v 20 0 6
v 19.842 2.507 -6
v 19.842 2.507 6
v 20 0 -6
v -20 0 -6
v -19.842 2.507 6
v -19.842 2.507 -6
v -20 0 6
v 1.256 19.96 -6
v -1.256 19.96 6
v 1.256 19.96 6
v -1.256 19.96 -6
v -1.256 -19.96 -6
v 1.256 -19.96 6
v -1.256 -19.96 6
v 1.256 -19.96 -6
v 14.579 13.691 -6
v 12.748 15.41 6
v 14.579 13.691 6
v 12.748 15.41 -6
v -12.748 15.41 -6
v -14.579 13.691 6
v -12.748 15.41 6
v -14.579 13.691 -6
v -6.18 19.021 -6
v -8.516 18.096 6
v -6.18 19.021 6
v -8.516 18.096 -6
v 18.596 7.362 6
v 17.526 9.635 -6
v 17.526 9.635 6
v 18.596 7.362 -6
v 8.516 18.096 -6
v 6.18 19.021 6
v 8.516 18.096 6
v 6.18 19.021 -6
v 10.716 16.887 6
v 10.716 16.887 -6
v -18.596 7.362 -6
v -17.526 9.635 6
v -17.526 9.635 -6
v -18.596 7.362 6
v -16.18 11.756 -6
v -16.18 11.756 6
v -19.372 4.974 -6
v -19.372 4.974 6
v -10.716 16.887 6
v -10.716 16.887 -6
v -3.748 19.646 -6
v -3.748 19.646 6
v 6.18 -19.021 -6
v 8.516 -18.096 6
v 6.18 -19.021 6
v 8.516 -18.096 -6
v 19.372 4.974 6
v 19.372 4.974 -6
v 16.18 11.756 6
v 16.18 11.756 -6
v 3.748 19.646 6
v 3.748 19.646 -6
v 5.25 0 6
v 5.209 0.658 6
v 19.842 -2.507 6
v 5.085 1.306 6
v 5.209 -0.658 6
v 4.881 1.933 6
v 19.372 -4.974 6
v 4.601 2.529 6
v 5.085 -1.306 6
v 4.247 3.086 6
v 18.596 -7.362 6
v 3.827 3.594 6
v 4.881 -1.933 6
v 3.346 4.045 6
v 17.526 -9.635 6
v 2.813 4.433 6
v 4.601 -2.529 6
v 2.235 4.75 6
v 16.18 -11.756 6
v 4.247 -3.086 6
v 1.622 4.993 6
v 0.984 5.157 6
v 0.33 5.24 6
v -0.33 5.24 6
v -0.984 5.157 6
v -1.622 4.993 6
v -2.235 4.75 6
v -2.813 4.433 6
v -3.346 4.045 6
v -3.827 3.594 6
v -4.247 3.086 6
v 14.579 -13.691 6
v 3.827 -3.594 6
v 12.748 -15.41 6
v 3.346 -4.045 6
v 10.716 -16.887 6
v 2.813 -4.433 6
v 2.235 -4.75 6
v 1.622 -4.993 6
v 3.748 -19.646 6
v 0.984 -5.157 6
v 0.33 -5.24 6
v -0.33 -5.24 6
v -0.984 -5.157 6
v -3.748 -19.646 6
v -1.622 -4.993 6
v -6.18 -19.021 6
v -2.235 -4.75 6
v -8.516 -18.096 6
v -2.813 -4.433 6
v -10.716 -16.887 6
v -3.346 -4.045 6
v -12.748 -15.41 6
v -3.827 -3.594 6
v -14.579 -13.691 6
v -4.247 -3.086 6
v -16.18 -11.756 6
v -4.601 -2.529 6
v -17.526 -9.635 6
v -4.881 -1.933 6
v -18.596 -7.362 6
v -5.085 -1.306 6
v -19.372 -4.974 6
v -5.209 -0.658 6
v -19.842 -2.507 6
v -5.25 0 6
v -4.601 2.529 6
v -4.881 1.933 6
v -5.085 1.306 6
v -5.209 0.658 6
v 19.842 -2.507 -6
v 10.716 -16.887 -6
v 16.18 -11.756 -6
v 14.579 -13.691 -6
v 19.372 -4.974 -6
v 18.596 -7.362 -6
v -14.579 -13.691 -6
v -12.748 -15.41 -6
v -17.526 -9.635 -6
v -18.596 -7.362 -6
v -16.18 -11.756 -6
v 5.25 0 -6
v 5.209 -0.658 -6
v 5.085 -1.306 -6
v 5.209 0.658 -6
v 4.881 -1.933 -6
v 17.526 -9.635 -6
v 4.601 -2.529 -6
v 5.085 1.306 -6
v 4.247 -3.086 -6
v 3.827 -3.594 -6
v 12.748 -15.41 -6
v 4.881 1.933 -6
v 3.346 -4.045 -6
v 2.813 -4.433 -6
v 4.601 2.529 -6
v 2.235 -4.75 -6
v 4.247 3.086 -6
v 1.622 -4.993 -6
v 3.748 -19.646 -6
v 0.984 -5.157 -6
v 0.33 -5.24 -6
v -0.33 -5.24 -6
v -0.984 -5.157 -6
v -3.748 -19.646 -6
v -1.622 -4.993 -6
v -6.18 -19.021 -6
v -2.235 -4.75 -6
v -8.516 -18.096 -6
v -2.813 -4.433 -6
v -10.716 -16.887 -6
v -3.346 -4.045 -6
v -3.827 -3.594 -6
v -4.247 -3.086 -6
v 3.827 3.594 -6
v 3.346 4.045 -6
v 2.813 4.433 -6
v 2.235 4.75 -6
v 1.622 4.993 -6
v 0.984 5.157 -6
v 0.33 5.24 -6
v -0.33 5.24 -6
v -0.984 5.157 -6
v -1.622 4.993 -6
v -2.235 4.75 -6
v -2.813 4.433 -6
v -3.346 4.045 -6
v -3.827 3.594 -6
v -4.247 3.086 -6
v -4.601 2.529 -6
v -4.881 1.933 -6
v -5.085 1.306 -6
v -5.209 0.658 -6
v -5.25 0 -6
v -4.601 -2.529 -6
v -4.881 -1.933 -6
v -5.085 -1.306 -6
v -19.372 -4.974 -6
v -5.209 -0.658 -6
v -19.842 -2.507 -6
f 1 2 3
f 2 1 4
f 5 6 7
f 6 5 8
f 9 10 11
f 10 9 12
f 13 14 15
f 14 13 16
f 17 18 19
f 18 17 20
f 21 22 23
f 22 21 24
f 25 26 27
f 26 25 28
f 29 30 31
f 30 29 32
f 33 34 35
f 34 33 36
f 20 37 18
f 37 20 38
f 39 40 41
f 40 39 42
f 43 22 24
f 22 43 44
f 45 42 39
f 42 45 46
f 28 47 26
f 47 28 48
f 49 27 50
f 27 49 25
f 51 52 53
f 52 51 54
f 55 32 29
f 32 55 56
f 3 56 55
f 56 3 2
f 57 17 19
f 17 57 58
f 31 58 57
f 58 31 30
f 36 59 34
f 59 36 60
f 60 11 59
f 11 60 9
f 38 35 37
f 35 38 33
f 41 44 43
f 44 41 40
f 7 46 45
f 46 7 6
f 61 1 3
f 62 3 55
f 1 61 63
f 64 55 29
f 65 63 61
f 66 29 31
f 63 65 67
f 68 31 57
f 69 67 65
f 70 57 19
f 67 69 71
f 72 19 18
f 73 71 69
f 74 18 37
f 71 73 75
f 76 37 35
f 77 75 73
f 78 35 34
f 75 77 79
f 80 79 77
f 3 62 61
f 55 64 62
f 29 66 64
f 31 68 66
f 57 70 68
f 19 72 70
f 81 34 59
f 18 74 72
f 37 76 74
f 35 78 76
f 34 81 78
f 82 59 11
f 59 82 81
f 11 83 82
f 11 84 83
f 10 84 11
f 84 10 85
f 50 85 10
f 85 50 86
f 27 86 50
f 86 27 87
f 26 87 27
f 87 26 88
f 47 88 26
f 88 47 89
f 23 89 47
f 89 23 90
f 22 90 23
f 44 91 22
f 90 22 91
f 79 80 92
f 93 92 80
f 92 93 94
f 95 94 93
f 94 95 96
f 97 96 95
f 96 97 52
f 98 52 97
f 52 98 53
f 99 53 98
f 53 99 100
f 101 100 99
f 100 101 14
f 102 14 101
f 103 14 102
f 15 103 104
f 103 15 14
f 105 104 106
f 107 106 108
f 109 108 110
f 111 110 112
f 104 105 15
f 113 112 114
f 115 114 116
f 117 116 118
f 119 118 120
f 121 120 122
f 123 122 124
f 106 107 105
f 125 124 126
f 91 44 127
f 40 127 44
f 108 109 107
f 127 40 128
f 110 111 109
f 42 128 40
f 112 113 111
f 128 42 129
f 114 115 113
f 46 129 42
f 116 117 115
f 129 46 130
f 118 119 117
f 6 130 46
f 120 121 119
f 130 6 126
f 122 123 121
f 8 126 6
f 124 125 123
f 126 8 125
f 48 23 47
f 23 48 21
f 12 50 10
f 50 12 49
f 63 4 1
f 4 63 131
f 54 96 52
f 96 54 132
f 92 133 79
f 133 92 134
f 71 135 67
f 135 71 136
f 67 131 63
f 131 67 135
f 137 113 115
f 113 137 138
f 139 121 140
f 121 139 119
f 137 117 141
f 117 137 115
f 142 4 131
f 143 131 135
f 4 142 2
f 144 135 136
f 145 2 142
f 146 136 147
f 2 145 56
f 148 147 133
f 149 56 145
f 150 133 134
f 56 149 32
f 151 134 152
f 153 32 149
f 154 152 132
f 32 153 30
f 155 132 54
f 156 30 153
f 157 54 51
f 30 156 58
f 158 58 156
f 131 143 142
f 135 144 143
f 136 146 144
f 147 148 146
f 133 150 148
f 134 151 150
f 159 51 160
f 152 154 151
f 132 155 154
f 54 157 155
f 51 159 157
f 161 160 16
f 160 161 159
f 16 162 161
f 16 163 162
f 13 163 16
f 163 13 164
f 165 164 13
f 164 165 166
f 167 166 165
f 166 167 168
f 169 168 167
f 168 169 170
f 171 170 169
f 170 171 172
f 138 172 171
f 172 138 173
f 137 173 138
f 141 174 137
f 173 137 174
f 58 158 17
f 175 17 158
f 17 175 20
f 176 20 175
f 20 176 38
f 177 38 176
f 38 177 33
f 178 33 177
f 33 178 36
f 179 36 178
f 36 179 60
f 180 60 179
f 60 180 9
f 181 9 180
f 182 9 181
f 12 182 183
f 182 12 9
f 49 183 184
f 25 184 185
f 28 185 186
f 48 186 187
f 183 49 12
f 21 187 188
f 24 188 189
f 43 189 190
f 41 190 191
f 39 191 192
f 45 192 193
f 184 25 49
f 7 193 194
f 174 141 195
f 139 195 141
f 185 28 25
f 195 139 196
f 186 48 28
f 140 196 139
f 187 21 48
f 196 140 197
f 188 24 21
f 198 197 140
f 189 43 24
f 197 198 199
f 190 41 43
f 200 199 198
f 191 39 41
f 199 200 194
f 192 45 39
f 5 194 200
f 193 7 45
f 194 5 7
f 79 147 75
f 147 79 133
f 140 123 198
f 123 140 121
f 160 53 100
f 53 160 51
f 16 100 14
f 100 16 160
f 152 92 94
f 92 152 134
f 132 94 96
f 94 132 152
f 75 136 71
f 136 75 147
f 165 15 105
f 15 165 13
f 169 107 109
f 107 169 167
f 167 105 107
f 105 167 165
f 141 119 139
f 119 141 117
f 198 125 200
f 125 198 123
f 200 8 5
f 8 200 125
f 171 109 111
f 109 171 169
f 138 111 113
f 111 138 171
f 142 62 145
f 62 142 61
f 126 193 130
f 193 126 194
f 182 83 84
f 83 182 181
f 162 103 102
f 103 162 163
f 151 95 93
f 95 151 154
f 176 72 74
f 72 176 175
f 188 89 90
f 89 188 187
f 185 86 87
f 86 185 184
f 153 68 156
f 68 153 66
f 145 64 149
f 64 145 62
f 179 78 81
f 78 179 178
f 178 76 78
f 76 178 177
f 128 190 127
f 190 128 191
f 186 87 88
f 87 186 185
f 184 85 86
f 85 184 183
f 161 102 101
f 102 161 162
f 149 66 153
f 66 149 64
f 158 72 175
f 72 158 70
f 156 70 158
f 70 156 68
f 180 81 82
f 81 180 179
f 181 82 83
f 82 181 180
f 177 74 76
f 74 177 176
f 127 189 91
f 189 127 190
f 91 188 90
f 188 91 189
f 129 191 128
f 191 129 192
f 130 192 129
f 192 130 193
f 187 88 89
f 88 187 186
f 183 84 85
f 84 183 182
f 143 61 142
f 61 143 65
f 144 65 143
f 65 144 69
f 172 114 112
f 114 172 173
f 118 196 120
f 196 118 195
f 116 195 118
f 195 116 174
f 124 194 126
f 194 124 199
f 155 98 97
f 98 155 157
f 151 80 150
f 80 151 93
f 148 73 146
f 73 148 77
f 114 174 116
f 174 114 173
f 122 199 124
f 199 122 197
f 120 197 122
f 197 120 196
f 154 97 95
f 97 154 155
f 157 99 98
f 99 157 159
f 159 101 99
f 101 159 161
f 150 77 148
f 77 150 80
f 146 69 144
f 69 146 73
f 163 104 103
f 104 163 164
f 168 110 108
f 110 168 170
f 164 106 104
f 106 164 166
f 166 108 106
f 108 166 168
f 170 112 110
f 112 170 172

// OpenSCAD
$fn = 50;


difference() {
	union() {
		translate(v = [0, 0, -6.0000000000]) {
			cylinder(h = 12, r = 20.0000000000);
		}
	}
	union() {
		translate(v = [0, 0, -100.0000000000]) {
			cylinder(h = 200, r = 5.2500000000);
		}
	}
}
